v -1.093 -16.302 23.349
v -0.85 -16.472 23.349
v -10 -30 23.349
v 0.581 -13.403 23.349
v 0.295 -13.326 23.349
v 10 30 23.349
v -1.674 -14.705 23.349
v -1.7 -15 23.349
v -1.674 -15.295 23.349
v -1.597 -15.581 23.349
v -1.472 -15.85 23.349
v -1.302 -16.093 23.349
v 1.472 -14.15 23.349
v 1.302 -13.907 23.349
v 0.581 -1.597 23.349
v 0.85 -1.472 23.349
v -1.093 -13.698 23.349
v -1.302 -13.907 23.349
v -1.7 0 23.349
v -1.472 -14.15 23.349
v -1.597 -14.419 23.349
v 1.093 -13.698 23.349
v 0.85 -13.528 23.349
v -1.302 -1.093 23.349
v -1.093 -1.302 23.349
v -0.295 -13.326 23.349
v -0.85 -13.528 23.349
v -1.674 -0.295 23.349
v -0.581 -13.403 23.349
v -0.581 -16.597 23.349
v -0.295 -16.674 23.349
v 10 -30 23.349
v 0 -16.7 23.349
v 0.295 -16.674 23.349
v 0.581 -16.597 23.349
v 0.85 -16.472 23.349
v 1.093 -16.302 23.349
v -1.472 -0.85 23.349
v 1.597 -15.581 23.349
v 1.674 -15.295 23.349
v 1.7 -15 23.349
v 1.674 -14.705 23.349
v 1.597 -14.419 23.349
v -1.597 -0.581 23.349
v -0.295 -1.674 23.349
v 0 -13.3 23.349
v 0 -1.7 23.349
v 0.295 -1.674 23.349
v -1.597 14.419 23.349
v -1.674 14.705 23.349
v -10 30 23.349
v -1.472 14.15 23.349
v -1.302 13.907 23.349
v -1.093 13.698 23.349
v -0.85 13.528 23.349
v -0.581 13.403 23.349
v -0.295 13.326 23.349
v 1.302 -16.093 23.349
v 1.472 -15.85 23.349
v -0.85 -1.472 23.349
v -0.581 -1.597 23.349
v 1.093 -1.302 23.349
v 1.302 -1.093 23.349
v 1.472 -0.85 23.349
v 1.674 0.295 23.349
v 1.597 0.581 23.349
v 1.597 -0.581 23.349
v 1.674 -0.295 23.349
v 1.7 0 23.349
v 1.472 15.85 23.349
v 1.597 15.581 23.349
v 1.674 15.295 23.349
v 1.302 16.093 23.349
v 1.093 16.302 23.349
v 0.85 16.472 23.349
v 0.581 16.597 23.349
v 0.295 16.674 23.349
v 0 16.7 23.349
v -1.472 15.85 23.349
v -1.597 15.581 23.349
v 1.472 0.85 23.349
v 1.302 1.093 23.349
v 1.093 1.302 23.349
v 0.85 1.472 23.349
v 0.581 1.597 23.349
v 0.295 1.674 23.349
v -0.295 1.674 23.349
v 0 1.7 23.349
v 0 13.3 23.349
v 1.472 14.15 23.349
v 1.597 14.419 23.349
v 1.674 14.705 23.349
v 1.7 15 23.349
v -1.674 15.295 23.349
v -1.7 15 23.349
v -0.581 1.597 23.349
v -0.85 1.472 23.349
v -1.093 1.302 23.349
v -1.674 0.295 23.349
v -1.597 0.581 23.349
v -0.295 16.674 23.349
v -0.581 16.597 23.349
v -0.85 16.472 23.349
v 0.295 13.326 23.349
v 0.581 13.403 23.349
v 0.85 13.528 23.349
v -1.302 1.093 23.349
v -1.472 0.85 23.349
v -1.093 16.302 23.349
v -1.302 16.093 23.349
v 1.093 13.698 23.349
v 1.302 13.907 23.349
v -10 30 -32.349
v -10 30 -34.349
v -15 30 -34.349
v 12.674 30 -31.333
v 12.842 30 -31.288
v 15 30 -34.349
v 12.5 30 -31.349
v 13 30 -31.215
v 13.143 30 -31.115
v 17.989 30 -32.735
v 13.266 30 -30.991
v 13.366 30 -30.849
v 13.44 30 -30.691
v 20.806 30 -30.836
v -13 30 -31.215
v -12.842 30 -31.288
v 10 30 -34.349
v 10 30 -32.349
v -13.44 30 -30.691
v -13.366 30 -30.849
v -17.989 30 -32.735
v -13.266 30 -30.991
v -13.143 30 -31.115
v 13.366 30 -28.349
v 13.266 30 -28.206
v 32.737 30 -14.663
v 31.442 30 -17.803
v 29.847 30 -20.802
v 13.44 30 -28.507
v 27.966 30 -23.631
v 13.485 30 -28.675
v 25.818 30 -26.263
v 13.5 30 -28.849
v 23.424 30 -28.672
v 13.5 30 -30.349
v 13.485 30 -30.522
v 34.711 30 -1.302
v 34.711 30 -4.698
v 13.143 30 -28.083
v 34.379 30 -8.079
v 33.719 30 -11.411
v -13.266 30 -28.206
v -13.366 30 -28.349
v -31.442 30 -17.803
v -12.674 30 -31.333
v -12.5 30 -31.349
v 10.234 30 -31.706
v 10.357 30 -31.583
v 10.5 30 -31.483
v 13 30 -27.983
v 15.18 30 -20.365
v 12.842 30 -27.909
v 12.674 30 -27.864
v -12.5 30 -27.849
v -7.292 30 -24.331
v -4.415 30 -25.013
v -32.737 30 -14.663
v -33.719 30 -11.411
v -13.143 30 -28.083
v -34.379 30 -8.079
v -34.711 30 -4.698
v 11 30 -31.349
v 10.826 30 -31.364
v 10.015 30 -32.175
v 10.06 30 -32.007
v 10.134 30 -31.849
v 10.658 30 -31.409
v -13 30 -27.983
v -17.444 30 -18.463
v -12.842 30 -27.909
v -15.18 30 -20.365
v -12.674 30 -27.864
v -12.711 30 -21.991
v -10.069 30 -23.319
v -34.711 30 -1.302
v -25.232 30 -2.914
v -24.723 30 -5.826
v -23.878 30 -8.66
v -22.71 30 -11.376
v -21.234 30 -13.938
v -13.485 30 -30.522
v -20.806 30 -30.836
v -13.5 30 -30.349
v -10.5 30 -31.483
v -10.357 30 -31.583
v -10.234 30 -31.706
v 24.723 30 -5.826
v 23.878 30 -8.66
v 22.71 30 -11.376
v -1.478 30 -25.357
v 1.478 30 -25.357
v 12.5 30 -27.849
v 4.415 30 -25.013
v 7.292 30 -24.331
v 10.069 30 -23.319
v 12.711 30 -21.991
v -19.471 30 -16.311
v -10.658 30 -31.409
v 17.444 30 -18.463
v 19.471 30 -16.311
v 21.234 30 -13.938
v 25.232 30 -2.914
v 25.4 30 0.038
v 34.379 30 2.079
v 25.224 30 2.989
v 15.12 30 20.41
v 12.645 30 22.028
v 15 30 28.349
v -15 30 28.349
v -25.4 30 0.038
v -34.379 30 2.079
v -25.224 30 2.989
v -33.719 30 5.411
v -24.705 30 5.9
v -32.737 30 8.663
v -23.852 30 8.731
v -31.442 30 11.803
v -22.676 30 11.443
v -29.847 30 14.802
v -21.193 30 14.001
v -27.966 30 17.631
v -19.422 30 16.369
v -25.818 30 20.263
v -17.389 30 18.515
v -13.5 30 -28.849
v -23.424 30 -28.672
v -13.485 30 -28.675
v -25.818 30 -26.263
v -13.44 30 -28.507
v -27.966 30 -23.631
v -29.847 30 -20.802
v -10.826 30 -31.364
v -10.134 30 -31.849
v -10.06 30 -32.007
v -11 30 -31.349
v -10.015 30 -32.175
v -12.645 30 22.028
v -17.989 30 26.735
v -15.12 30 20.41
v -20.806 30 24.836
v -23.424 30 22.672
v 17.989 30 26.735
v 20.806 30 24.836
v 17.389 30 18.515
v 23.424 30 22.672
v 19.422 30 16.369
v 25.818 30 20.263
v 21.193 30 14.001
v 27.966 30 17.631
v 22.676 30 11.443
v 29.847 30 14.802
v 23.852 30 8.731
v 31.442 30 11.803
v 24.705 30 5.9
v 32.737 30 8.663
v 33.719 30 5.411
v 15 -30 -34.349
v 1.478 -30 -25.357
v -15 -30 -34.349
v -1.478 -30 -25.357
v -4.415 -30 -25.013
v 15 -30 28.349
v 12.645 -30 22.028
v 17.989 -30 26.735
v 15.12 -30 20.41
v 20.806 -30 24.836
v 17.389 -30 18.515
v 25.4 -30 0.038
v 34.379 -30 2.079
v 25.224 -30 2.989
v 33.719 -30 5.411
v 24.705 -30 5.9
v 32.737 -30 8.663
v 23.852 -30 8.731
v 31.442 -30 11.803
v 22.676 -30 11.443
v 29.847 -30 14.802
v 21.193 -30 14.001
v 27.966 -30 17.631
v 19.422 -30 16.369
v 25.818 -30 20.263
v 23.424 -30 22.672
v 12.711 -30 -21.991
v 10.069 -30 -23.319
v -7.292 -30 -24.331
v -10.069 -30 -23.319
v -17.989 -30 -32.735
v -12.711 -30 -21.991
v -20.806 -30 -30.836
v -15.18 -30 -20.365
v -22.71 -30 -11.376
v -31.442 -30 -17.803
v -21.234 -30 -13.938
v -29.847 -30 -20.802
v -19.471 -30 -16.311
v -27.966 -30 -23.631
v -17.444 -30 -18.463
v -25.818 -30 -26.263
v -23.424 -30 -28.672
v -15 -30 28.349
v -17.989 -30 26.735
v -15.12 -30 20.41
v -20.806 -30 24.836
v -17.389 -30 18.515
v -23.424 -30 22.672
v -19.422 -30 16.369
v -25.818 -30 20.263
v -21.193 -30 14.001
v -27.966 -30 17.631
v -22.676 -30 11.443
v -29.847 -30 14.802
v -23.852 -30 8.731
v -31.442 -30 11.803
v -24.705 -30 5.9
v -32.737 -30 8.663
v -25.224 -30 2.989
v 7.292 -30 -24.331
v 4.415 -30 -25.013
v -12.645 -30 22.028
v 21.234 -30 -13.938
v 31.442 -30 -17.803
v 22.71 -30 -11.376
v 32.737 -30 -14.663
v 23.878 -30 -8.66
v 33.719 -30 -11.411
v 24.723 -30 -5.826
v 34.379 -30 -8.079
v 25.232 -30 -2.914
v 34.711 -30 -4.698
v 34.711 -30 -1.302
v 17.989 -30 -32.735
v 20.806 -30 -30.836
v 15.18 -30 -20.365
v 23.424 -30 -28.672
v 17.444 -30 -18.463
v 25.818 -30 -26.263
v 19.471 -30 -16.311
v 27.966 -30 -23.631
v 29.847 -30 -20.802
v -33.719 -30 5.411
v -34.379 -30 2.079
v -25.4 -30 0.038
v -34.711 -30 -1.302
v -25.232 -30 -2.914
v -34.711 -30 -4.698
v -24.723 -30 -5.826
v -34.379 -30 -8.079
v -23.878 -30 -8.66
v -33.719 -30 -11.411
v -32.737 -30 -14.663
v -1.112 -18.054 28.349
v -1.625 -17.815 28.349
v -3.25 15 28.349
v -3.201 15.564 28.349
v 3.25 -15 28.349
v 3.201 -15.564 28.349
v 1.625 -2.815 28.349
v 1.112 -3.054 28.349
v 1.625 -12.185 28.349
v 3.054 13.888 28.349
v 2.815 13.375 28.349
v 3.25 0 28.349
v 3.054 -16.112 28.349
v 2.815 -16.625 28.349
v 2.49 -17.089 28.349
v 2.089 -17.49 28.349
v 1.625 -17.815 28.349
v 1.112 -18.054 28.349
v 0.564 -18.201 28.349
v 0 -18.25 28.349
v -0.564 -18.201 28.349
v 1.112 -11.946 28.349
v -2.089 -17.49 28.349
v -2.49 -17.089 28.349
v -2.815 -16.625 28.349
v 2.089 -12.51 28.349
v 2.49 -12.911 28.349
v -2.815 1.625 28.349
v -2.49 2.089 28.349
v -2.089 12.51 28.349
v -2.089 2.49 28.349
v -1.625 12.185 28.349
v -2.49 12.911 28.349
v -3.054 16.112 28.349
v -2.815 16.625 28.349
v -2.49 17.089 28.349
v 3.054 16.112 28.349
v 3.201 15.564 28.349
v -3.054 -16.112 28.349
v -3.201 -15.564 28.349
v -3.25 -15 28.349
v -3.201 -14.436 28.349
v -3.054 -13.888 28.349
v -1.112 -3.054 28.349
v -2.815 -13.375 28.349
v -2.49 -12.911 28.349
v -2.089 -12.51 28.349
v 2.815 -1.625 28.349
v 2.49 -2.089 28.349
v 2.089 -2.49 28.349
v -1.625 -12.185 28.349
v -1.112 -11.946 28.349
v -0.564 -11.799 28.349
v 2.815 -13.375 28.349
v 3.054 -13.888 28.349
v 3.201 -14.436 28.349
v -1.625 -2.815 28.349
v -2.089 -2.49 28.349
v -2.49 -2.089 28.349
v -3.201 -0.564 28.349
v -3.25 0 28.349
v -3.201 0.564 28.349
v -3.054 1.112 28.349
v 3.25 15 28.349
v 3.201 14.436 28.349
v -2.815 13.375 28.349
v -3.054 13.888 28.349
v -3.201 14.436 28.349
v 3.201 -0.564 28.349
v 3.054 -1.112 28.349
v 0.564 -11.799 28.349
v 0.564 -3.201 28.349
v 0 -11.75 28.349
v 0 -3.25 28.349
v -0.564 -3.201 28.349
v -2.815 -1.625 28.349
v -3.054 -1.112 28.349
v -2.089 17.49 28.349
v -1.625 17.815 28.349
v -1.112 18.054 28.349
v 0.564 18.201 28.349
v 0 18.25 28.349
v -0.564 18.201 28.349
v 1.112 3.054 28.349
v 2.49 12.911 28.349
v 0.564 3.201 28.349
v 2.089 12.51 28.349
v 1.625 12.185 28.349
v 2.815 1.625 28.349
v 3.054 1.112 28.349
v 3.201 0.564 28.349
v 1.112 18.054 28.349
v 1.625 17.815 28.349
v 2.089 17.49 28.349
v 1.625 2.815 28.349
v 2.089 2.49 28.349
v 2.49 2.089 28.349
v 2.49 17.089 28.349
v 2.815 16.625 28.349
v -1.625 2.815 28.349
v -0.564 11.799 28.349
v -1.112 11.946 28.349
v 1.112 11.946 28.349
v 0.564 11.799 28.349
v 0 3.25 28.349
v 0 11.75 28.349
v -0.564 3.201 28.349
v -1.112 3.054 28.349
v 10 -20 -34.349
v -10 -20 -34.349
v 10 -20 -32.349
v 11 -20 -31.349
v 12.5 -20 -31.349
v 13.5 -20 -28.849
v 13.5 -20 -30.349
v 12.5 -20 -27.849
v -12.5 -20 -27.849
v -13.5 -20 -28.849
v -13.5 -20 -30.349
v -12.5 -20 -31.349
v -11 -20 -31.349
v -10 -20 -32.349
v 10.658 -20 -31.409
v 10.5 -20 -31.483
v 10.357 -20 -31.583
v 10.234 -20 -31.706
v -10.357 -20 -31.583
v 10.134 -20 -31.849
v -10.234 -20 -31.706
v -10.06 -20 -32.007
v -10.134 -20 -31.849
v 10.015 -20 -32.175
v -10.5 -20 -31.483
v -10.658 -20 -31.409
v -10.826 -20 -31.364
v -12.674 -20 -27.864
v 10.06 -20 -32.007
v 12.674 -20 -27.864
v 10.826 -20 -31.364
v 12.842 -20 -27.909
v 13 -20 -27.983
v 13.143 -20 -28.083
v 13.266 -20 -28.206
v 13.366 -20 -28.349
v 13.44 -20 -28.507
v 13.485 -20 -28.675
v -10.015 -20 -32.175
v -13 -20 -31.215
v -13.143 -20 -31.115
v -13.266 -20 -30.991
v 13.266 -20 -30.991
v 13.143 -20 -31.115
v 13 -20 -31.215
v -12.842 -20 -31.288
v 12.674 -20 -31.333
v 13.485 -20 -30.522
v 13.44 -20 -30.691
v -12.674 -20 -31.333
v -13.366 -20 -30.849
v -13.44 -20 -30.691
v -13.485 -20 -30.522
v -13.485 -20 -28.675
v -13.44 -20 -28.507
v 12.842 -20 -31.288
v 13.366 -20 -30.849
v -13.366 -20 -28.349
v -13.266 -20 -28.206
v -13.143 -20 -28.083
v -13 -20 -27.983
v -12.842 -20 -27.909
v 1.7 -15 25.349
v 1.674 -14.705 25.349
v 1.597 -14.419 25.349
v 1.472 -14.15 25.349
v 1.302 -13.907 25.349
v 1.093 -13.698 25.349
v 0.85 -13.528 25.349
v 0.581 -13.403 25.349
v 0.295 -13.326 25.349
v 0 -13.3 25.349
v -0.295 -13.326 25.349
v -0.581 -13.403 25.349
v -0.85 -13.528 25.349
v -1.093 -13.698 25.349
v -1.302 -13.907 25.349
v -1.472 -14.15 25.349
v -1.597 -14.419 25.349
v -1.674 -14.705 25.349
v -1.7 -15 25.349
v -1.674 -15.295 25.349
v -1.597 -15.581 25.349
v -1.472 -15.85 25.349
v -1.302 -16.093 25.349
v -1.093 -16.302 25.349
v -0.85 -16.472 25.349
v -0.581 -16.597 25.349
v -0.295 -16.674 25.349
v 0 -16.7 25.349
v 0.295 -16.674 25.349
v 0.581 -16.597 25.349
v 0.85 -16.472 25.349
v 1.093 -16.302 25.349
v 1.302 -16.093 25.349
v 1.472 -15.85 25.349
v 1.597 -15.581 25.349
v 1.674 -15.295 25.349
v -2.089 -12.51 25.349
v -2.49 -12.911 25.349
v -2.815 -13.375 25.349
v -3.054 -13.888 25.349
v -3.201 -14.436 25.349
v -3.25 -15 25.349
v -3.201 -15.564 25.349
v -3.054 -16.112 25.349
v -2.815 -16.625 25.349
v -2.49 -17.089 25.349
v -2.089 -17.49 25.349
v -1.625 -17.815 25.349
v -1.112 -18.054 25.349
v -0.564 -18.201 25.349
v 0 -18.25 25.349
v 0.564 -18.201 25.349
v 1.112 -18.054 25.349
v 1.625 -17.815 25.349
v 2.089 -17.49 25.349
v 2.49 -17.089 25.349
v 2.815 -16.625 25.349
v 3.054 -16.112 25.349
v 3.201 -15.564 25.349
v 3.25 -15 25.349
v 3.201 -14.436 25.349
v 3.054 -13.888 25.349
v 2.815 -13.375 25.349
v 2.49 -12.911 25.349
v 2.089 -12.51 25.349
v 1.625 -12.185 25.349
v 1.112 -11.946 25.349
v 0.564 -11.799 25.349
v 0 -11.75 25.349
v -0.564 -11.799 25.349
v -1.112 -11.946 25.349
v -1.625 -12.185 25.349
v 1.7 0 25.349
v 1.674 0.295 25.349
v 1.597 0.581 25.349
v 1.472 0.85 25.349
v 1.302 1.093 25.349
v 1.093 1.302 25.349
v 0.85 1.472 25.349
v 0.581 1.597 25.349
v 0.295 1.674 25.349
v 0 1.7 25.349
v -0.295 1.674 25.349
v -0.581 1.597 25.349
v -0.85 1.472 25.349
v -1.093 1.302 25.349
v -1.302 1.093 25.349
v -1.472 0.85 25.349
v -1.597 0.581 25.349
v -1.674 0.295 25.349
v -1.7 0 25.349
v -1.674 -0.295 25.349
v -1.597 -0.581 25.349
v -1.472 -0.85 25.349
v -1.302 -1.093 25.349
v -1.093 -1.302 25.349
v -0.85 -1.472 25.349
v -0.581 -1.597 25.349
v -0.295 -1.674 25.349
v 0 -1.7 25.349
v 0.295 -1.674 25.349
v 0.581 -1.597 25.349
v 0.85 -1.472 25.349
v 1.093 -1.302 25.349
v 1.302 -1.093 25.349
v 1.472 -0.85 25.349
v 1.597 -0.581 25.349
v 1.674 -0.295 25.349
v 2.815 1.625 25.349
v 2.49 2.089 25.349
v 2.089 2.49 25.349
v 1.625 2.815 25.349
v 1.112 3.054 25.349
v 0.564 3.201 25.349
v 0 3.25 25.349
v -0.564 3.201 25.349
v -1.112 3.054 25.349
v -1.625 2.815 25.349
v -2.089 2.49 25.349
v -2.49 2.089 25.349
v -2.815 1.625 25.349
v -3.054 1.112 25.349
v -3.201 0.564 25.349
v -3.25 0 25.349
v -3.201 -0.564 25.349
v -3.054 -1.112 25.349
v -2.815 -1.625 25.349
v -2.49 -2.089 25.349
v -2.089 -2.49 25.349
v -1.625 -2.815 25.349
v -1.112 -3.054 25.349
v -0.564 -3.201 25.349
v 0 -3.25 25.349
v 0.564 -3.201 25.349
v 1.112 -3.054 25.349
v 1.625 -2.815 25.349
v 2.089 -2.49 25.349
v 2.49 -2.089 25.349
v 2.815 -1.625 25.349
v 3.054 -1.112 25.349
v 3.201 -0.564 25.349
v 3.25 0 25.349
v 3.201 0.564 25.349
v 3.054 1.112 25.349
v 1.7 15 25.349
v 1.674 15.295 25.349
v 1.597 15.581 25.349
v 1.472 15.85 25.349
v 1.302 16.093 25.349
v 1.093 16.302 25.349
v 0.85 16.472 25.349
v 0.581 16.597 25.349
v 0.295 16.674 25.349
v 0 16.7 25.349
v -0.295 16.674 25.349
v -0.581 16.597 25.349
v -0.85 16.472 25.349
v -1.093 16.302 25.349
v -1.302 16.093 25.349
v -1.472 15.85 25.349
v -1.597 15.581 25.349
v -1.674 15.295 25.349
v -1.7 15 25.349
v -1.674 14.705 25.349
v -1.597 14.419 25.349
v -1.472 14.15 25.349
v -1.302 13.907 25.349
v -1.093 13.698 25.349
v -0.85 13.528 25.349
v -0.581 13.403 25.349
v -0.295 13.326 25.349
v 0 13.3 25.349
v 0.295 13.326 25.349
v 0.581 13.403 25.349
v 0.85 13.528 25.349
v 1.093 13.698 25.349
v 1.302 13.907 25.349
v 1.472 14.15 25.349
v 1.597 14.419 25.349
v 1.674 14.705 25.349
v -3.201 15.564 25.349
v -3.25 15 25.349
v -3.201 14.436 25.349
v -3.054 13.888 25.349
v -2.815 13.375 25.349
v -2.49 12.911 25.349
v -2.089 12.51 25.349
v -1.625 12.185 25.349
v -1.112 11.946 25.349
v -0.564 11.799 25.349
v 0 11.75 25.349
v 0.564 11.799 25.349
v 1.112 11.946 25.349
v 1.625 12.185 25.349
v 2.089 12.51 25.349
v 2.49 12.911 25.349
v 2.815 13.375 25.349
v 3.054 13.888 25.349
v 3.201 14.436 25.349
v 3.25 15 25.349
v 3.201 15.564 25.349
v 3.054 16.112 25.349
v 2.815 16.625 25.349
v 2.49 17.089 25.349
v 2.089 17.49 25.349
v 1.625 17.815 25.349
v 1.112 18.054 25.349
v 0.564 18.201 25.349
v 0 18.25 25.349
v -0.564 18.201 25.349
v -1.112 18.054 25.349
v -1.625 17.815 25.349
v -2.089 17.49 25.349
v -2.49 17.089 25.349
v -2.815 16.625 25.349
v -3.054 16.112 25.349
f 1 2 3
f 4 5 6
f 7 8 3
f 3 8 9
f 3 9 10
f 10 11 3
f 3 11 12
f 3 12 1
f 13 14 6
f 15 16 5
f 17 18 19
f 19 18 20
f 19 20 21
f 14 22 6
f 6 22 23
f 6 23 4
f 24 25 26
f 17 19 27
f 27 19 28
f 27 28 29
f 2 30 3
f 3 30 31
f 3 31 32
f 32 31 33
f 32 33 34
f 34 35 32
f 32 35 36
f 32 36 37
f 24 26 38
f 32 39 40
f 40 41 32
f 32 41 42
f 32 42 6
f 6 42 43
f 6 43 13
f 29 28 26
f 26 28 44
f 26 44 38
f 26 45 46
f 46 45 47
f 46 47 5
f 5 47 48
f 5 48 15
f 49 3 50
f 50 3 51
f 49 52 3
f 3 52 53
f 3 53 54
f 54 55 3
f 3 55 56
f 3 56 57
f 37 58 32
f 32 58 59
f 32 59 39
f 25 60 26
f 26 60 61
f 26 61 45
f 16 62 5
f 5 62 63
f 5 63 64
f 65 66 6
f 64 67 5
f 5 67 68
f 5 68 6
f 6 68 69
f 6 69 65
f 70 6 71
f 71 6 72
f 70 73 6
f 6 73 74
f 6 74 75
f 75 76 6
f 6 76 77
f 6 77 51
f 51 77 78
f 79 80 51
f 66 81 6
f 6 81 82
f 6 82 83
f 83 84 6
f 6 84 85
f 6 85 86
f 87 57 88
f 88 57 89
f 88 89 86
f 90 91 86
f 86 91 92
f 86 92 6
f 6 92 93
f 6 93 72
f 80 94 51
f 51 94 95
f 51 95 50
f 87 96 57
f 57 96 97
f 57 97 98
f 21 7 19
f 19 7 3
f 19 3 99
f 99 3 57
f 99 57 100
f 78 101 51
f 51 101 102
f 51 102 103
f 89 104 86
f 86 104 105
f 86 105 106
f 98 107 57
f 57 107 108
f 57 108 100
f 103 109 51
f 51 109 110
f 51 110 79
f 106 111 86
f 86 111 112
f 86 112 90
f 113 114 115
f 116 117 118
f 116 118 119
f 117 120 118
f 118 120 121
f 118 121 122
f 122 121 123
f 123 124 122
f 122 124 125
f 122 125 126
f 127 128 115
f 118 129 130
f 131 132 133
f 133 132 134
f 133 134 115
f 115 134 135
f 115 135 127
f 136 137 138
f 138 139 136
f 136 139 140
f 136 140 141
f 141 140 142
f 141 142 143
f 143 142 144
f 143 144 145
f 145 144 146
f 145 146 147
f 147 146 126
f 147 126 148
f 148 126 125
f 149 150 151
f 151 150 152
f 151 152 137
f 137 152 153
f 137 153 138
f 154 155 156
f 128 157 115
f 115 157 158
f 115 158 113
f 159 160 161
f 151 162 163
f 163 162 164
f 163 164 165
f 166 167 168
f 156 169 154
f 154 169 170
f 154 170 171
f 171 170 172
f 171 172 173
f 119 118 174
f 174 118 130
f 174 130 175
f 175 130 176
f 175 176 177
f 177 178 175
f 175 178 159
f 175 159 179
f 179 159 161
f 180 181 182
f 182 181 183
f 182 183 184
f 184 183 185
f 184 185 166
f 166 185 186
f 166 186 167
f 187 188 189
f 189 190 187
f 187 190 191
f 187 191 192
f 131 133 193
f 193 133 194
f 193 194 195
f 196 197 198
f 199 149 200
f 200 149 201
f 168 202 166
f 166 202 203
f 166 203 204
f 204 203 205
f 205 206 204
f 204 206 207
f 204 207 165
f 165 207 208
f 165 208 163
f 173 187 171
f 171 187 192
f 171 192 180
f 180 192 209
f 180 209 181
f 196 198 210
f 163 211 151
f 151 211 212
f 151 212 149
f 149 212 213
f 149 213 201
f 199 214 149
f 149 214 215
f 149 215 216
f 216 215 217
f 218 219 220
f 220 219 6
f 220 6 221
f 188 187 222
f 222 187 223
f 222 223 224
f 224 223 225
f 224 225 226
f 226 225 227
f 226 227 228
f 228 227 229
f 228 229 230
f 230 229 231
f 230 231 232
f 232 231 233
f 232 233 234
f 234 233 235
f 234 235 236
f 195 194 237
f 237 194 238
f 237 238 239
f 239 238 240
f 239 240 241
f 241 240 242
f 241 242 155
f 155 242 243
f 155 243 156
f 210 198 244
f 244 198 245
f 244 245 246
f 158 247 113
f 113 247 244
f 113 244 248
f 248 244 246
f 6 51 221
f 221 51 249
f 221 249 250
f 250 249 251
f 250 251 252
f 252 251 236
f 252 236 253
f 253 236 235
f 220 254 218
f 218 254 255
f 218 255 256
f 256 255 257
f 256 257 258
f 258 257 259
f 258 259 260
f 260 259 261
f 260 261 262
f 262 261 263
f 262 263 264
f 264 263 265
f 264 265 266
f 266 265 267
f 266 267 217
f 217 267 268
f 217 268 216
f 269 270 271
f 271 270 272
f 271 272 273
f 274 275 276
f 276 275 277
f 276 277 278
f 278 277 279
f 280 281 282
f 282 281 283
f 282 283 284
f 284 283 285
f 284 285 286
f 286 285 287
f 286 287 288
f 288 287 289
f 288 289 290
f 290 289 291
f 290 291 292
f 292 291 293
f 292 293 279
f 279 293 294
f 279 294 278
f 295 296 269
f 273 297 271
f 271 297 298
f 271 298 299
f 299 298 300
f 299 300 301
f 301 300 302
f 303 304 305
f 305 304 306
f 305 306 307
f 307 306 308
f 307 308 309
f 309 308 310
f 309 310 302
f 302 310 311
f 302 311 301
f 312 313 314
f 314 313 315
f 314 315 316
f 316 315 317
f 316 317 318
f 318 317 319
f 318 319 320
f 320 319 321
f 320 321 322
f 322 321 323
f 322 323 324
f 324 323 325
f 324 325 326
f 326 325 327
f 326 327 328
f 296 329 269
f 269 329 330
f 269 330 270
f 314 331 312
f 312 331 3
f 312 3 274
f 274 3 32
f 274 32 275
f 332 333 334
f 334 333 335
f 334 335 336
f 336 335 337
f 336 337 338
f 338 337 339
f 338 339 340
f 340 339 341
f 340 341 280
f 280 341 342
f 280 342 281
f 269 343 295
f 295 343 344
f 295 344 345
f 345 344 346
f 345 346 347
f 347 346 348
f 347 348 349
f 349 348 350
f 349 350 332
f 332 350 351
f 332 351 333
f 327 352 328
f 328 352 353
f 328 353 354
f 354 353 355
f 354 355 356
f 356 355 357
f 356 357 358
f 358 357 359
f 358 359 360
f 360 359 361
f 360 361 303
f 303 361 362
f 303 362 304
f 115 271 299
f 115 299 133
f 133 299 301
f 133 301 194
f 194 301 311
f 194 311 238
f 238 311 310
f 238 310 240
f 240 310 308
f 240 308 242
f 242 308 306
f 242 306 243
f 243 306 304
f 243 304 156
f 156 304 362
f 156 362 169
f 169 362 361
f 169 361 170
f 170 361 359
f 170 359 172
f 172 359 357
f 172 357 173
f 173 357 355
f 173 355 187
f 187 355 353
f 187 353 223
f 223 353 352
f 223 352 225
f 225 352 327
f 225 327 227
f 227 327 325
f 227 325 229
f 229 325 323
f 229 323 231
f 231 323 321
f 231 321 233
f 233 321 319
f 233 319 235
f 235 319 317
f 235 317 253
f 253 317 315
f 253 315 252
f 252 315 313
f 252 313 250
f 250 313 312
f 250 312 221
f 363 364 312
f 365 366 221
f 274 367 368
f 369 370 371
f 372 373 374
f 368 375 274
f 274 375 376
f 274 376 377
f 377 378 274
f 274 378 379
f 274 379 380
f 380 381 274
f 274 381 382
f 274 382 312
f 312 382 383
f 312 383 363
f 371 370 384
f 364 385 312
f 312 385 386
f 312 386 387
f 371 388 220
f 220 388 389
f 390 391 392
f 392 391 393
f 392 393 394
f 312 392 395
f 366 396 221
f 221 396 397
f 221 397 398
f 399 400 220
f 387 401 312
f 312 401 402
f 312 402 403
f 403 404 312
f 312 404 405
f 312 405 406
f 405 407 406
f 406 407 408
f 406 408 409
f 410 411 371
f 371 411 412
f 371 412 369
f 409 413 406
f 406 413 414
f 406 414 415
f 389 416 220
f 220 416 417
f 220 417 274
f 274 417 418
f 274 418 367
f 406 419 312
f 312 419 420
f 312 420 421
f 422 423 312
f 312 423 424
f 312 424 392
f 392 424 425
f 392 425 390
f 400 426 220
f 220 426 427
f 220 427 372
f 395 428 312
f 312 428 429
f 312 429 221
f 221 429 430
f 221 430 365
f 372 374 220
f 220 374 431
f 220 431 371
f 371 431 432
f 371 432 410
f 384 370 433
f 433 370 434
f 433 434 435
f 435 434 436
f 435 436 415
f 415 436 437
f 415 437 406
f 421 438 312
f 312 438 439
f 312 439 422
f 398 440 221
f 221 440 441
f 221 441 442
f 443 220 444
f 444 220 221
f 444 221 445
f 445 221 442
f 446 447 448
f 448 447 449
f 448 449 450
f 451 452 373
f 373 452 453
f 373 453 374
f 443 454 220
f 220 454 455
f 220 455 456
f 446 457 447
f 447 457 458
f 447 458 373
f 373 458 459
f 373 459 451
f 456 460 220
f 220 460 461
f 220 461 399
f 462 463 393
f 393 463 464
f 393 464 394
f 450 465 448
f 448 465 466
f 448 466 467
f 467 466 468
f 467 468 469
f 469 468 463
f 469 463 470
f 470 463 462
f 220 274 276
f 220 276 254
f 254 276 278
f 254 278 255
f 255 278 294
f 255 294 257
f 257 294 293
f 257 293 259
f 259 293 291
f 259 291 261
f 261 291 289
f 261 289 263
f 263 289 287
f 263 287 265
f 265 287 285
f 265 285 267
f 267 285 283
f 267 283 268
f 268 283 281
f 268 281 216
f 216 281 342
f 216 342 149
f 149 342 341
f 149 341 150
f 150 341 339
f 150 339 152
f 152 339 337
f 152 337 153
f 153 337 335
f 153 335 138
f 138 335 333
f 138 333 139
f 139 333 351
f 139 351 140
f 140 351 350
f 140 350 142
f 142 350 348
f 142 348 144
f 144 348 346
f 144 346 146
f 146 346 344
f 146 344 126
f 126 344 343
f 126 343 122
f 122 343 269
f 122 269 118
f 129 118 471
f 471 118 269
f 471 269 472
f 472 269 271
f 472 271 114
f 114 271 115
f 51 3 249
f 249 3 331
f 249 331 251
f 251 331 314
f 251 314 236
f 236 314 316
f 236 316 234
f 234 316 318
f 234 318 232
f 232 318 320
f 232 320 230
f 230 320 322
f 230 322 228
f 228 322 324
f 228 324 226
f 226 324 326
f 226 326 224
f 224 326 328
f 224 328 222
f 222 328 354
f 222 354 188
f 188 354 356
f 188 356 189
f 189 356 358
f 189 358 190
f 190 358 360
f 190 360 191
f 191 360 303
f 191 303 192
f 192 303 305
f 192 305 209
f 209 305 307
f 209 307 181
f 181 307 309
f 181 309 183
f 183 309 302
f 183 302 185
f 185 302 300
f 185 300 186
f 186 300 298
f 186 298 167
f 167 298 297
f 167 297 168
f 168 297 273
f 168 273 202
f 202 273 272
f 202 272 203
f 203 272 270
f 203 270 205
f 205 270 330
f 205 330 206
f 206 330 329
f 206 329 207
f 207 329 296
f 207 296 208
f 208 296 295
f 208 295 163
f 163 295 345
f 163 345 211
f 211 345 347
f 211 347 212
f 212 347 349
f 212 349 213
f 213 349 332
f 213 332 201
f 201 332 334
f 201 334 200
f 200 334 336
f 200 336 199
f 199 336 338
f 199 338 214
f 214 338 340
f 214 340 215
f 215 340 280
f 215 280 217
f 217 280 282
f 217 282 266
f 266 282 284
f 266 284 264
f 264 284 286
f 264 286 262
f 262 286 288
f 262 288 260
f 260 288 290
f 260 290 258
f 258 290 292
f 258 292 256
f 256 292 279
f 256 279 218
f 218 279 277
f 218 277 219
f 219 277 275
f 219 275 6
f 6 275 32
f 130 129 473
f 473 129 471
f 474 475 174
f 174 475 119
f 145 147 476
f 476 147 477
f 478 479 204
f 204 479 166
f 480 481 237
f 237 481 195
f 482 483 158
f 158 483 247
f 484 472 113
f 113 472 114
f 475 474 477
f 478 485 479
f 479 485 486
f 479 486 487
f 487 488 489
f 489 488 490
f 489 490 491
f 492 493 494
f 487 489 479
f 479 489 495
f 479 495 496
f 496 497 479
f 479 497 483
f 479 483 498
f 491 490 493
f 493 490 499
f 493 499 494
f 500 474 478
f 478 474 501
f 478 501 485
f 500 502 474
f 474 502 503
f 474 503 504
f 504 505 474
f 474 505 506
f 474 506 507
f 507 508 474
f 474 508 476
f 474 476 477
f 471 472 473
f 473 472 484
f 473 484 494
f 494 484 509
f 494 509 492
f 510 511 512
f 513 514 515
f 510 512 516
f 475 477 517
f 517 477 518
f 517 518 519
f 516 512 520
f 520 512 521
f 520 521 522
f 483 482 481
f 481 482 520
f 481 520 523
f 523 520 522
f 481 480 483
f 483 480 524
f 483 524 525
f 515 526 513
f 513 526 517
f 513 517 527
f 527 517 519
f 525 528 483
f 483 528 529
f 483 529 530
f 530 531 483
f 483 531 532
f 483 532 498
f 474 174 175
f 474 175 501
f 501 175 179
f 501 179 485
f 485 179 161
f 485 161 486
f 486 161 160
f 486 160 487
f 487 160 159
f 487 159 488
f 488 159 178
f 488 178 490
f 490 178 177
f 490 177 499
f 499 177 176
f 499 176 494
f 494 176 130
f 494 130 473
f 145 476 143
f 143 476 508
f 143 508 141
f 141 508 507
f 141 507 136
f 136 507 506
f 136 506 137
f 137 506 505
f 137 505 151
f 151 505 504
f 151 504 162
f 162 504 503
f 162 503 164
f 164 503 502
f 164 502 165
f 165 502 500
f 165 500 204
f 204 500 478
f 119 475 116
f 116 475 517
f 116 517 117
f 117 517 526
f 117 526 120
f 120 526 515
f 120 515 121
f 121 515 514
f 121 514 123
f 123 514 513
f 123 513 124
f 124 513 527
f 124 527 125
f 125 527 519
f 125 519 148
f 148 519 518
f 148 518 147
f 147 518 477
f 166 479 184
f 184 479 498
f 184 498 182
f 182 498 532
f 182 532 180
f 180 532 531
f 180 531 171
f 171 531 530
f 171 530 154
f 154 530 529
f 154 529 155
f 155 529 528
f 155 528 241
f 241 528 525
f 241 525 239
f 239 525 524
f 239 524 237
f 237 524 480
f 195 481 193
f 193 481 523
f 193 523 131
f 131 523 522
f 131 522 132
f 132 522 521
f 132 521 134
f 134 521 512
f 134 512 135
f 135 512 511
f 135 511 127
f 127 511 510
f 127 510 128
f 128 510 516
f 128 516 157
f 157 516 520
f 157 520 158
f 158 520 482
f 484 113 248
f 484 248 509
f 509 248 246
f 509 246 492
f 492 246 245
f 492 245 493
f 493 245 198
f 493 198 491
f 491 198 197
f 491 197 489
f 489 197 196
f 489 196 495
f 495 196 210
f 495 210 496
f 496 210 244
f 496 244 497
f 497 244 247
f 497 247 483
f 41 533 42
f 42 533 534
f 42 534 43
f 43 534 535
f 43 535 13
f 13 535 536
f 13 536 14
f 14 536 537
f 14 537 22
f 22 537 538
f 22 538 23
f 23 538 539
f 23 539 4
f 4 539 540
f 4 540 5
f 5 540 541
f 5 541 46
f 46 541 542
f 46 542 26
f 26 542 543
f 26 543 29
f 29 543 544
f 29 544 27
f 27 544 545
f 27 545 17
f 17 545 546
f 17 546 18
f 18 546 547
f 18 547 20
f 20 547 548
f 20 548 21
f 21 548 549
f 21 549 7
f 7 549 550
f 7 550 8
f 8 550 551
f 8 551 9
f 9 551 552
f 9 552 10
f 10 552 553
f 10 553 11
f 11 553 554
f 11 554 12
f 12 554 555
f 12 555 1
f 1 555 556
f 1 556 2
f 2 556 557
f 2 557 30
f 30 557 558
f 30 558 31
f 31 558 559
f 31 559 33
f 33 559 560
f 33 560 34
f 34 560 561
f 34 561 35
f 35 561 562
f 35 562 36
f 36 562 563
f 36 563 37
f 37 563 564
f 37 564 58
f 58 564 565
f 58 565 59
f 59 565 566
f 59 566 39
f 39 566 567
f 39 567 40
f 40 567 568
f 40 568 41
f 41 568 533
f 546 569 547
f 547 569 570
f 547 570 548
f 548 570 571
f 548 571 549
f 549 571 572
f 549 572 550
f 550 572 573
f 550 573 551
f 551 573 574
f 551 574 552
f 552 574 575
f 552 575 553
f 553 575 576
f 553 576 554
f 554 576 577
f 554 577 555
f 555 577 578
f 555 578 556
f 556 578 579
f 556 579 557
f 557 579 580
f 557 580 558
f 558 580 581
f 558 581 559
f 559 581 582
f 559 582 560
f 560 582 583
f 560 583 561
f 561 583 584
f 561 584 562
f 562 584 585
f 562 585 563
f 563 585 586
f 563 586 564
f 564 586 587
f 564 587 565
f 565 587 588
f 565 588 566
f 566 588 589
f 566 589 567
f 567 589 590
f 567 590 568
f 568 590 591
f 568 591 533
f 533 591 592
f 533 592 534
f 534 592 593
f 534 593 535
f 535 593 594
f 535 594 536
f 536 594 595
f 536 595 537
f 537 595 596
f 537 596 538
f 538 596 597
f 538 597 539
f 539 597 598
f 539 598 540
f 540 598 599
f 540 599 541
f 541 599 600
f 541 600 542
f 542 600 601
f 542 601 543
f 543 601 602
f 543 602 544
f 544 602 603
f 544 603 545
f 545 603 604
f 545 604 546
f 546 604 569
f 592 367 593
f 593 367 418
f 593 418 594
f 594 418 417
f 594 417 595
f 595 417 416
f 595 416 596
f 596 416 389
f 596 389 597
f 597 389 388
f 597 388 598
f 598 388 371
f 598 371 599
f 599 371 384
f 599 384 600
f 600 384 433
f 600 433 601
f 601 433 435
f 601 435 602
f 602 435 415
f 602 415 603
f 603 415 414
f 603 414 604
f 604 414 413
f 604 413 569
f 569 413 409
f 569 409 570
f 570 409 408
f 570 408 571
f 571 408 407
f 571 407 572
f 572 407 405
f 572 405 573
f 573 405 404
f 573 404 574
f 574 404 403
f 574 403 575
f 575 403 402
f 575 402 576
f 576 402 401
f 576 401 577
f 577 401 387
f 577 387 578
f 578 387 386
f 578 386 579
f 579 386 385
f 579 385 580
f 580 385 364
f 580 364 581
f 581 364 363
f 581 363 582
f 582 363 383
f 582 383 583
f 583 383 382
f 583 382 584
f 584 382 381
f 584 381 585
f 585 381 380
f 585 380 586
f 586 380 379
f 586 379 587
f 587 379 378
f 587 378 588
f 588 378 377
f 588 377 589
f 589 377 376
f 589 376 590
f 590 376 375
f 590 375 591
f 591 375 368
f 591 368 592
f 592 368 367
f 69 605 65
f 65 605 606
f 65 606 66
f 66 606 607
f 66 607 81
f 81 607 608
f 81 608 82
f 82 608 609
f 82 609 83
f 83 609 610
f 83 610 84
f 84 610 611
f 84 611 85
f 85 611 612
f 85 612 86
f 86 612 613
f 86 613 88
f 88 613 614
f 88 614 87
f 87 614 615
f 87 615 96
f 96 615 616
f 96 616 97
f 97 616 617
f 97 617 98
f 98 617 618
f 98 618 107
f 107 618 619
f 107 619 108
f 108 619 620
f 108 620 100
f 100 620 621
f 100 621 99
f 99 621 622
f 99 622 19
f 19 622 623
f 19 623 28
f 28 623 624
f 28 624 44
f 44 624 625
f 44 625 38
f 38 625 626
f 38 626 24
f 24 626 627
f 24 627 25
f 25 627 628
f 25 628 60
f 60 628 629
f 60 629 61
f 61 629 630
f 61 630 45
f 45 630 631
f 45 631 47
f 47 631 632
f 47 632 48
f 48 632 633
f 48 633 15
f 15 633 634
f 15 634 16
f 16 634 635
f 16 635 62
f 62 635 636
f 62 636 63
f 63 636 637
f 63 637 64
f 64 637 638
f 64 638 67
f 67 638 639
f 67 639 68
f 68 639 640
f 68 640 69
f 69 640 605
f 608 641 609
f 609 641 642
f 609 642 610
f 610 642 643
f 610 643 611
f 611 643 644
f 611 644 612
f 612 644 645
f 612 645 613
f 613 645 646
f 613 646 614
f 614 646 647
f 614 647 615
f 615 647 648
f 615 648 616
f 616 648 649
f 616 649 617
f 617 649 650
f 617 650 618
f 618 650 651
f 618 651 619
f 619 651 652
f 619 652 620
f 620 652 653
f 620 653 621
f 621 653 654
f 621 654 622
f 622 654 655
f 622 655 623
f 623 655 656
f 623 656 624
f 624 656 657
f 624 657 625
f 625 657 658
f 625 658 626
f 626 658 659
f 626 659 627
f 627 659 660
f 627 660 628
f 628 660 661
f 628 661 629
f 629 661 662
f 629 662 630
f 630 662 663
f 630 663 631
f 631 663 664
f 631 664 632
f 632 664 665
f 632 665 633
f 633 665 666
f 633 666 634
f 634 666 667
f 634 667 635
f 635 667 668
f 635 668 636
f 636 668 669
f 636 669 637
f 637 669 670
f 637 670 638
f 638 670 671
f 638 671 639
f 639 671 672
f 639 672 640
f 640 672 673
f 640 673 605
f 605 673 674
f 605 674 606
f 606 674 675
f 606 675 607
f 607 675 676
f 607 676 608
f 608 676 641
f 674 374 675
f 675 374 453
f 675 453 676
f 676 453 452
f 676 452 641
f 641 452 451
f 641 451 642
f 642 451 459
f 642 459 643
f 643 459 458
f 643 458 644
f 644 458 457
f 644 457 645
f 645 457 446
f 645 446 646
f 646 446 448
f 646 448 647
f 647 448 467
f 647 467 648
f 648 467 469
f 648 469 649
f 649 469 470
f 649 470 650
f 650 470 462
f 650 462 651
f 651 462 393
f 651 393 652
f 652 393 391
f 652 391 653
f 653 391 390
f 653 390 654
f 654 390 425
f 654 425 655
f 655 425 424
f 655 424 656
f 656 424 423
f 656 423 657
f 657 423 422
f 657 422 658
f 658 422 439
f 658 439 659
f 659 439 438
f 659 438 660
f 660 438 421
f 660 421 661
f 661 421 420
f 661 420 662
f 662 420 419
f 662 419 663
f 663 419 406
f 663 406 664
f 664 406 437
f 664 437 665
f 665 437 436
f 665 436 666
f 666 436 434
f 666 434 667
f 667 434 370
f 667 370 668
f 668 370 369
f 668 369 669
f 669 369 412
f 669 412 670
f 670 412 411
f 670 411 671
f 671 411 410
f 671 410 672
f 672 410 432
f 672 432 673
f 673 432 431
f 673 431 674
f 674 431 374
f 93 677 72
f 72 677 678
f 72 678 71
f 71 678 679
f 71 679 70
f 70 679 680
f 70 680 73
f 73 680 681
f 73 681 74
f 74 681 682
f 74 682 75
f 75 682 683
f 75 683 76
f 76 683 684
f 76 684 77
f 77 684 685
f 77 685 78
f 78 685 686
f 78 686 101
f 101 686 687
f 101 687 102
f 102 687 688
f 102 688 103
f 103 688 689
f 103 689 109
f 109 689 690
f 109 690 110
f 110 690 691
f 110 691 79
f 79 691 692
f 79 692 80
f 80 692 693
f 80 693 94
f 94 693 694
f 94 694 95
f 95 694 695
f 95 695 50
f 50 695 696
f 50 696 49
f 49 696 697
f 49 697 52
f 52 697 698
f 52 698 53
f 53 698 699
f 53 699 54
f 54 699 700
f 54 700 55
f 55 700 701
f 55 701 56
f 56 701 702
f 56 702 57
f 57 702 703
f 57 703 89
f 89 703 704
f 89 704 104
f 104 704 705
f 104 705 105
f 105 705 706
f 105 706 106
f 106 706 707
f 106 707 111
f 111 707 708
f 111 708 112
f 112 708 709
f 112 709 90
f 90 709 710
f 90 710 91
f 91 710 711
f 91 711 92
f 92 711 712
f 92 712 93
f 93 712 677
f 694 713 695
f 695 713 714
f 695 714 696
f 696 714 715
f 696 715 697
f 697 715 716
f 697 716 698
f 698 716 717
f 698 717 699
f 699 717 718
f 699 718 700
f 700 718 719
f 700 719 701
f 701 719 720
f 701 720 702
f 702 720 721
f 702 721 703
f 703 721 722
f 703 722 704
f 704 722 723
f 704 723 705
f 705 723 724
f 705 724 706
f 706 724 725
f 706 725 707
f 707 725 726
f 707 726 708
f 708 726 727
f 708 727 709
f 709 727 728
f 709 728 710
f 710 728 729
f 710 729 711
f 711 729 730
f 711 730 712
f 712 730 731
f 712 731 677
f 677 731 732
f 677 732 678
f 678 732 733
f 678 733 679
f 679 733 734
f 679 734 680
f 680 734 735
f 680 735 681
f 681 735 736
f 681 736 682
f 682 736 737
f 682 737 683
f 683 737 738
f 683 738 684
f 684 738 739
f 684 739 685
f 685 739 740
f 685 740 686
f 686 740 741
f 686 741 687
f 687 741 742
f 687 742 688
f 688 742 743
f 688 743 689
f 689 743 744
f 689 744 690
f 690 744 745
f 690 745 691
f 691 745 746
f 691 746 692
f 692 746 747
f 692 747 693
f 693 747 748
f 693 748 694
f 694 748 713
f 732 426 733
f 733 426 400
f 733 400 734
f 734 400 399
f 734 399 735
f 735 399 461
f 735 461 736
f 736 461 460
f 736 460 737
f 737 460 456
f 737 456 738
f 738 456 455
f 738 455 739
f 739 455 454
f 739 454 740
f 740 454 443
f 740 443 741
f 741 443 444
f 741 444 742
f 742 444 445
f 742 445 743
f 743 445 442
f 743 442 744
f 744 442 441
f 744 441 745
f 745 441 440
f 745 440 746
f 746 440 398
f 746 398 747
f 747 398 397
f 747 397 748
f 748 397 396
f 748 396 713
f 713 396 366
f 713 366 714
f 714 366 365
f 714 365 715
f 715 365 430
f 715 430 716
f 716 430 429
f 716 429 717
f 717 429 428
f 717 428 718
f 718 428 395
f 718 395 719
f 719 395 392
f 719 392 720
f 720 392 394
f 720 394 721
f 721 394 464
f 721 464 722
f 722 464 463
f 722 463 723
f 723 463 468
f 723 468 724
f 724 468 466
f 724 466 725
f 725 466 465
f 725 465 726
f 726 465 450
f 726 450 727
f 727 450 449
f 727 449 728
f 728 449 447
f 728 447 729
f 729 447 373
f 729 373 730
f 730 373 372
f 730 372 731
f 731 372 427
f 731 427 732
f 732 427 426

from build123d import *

# Parameters (mm, degrees)
BOSS_EXTRUDE1_DEPTH            = 30
CUT_EXTRUDE1_DEPTH             = 50
FILLET1_R                      = 1
CBORE_FOR_M3_SHCS1_D           = 3.4
CBORE_FOR_M3_SHCS1_DEPTH       = 5
CBORE_FOR_M3_SHCS1_CBORE_D     = 6.5
CBORE_FOR_M3_SHCS1_CBORE_DEPTH = 3
CBORE_FOR_M3_SHCS1_TIP         = 1.021463052


with BuildPart() as part:
    # Sketch1 → Boss-Extrude1 (new body, symmetric)
    with BuildSketch(Plane(origin=(0, 0, 0), x_dir=(1, 0, 0), z_dir=(0, 1, 0))):
        with BuildLine():
            Line((-15, -28.348661632), (15, -28.348661632))
            ThreePointArc((15, -28.348661632), (34.752533521, 3), (15, 34.348661632))
            Line((15, 34.348661632), (-15, 34.348661632))
            ThreePointArc((-15, 34.348661632), (-34.752533521, 3), (-15, -28.348661632))
        make_face()
        with BuildLine():
            Line((-10, -23.348661632), (10, -23.348661632))
            ThreePointArc((10, -23.348661632), (0, 25.4), (-10, -23.348661632))
        make_face(mode=Mode.SUBTRACT)
    extrude(amount=BOSS_EXTRUDE1_DEPTH, both=True)

    # Sketch4 → Cut-Extrude1 (cut)
    with BuildSketch(Plane(origin=(0, 30, 0), x_dir=(1, 0, 0), z_dir=(0, 1, 0))):
        Polygon((-10, 34.348661632), (-10, 31.348661632), (-13.5, 31.348661632), (-13.5, 27.848661632), (13.5, 27.848661632), (13.5, 31.348661632), (10, 31.348661632), (10, 34.348661632), align=None)
    extrude(amount=-CUT_EXTRUDE1_DEPTH, mode=Mode.SUBTRACT)

    # Fillet1
    fillet1_edges = [part.edges().sort_by_distance(p)[0] for p in [
        (10, 5, -31.348661632),
        (13.5, 5, -31.348661632),
        (13.5, 5, -27.848661632),
        (-13.5, 5, -27.848661632),
        (-13.5, 5, -31.348661632),
        (-10, 5, -31.348661632),
    ]]
    fillet(fillet1_edges, radius=FILLET1_R)

    # CBORE for M3 SHCS1
    with Locations(Plane.XY.offset(28.348661632)):
        with Locations((0, 0), (0, 15), (0, -15)):
            CounterBoreHole(CBORE_FOR_M3_SHCS1_D / 2, CBORE_FOR_M3_SHCS1_CBORE_D / 2, CBORE_FOR_M3_SHCS1_CBORE_DEPTH, depth=CBORE_FOR_M3_SHCS1_DEPTH)
            with Locations((0, 0, -(CBORE_FOR_M3_SHCS1_DEPTH + CBORE_FOR_M3_SHCS1_TIP / 2))):  # 118° drill point
                Cone(0, CBORE_FOR_M3_SHCS1_D / 2, CBORE_FOR_M3_SHCS1_TIP, mode=Mode.SUBTRACT)


solid = part.part
